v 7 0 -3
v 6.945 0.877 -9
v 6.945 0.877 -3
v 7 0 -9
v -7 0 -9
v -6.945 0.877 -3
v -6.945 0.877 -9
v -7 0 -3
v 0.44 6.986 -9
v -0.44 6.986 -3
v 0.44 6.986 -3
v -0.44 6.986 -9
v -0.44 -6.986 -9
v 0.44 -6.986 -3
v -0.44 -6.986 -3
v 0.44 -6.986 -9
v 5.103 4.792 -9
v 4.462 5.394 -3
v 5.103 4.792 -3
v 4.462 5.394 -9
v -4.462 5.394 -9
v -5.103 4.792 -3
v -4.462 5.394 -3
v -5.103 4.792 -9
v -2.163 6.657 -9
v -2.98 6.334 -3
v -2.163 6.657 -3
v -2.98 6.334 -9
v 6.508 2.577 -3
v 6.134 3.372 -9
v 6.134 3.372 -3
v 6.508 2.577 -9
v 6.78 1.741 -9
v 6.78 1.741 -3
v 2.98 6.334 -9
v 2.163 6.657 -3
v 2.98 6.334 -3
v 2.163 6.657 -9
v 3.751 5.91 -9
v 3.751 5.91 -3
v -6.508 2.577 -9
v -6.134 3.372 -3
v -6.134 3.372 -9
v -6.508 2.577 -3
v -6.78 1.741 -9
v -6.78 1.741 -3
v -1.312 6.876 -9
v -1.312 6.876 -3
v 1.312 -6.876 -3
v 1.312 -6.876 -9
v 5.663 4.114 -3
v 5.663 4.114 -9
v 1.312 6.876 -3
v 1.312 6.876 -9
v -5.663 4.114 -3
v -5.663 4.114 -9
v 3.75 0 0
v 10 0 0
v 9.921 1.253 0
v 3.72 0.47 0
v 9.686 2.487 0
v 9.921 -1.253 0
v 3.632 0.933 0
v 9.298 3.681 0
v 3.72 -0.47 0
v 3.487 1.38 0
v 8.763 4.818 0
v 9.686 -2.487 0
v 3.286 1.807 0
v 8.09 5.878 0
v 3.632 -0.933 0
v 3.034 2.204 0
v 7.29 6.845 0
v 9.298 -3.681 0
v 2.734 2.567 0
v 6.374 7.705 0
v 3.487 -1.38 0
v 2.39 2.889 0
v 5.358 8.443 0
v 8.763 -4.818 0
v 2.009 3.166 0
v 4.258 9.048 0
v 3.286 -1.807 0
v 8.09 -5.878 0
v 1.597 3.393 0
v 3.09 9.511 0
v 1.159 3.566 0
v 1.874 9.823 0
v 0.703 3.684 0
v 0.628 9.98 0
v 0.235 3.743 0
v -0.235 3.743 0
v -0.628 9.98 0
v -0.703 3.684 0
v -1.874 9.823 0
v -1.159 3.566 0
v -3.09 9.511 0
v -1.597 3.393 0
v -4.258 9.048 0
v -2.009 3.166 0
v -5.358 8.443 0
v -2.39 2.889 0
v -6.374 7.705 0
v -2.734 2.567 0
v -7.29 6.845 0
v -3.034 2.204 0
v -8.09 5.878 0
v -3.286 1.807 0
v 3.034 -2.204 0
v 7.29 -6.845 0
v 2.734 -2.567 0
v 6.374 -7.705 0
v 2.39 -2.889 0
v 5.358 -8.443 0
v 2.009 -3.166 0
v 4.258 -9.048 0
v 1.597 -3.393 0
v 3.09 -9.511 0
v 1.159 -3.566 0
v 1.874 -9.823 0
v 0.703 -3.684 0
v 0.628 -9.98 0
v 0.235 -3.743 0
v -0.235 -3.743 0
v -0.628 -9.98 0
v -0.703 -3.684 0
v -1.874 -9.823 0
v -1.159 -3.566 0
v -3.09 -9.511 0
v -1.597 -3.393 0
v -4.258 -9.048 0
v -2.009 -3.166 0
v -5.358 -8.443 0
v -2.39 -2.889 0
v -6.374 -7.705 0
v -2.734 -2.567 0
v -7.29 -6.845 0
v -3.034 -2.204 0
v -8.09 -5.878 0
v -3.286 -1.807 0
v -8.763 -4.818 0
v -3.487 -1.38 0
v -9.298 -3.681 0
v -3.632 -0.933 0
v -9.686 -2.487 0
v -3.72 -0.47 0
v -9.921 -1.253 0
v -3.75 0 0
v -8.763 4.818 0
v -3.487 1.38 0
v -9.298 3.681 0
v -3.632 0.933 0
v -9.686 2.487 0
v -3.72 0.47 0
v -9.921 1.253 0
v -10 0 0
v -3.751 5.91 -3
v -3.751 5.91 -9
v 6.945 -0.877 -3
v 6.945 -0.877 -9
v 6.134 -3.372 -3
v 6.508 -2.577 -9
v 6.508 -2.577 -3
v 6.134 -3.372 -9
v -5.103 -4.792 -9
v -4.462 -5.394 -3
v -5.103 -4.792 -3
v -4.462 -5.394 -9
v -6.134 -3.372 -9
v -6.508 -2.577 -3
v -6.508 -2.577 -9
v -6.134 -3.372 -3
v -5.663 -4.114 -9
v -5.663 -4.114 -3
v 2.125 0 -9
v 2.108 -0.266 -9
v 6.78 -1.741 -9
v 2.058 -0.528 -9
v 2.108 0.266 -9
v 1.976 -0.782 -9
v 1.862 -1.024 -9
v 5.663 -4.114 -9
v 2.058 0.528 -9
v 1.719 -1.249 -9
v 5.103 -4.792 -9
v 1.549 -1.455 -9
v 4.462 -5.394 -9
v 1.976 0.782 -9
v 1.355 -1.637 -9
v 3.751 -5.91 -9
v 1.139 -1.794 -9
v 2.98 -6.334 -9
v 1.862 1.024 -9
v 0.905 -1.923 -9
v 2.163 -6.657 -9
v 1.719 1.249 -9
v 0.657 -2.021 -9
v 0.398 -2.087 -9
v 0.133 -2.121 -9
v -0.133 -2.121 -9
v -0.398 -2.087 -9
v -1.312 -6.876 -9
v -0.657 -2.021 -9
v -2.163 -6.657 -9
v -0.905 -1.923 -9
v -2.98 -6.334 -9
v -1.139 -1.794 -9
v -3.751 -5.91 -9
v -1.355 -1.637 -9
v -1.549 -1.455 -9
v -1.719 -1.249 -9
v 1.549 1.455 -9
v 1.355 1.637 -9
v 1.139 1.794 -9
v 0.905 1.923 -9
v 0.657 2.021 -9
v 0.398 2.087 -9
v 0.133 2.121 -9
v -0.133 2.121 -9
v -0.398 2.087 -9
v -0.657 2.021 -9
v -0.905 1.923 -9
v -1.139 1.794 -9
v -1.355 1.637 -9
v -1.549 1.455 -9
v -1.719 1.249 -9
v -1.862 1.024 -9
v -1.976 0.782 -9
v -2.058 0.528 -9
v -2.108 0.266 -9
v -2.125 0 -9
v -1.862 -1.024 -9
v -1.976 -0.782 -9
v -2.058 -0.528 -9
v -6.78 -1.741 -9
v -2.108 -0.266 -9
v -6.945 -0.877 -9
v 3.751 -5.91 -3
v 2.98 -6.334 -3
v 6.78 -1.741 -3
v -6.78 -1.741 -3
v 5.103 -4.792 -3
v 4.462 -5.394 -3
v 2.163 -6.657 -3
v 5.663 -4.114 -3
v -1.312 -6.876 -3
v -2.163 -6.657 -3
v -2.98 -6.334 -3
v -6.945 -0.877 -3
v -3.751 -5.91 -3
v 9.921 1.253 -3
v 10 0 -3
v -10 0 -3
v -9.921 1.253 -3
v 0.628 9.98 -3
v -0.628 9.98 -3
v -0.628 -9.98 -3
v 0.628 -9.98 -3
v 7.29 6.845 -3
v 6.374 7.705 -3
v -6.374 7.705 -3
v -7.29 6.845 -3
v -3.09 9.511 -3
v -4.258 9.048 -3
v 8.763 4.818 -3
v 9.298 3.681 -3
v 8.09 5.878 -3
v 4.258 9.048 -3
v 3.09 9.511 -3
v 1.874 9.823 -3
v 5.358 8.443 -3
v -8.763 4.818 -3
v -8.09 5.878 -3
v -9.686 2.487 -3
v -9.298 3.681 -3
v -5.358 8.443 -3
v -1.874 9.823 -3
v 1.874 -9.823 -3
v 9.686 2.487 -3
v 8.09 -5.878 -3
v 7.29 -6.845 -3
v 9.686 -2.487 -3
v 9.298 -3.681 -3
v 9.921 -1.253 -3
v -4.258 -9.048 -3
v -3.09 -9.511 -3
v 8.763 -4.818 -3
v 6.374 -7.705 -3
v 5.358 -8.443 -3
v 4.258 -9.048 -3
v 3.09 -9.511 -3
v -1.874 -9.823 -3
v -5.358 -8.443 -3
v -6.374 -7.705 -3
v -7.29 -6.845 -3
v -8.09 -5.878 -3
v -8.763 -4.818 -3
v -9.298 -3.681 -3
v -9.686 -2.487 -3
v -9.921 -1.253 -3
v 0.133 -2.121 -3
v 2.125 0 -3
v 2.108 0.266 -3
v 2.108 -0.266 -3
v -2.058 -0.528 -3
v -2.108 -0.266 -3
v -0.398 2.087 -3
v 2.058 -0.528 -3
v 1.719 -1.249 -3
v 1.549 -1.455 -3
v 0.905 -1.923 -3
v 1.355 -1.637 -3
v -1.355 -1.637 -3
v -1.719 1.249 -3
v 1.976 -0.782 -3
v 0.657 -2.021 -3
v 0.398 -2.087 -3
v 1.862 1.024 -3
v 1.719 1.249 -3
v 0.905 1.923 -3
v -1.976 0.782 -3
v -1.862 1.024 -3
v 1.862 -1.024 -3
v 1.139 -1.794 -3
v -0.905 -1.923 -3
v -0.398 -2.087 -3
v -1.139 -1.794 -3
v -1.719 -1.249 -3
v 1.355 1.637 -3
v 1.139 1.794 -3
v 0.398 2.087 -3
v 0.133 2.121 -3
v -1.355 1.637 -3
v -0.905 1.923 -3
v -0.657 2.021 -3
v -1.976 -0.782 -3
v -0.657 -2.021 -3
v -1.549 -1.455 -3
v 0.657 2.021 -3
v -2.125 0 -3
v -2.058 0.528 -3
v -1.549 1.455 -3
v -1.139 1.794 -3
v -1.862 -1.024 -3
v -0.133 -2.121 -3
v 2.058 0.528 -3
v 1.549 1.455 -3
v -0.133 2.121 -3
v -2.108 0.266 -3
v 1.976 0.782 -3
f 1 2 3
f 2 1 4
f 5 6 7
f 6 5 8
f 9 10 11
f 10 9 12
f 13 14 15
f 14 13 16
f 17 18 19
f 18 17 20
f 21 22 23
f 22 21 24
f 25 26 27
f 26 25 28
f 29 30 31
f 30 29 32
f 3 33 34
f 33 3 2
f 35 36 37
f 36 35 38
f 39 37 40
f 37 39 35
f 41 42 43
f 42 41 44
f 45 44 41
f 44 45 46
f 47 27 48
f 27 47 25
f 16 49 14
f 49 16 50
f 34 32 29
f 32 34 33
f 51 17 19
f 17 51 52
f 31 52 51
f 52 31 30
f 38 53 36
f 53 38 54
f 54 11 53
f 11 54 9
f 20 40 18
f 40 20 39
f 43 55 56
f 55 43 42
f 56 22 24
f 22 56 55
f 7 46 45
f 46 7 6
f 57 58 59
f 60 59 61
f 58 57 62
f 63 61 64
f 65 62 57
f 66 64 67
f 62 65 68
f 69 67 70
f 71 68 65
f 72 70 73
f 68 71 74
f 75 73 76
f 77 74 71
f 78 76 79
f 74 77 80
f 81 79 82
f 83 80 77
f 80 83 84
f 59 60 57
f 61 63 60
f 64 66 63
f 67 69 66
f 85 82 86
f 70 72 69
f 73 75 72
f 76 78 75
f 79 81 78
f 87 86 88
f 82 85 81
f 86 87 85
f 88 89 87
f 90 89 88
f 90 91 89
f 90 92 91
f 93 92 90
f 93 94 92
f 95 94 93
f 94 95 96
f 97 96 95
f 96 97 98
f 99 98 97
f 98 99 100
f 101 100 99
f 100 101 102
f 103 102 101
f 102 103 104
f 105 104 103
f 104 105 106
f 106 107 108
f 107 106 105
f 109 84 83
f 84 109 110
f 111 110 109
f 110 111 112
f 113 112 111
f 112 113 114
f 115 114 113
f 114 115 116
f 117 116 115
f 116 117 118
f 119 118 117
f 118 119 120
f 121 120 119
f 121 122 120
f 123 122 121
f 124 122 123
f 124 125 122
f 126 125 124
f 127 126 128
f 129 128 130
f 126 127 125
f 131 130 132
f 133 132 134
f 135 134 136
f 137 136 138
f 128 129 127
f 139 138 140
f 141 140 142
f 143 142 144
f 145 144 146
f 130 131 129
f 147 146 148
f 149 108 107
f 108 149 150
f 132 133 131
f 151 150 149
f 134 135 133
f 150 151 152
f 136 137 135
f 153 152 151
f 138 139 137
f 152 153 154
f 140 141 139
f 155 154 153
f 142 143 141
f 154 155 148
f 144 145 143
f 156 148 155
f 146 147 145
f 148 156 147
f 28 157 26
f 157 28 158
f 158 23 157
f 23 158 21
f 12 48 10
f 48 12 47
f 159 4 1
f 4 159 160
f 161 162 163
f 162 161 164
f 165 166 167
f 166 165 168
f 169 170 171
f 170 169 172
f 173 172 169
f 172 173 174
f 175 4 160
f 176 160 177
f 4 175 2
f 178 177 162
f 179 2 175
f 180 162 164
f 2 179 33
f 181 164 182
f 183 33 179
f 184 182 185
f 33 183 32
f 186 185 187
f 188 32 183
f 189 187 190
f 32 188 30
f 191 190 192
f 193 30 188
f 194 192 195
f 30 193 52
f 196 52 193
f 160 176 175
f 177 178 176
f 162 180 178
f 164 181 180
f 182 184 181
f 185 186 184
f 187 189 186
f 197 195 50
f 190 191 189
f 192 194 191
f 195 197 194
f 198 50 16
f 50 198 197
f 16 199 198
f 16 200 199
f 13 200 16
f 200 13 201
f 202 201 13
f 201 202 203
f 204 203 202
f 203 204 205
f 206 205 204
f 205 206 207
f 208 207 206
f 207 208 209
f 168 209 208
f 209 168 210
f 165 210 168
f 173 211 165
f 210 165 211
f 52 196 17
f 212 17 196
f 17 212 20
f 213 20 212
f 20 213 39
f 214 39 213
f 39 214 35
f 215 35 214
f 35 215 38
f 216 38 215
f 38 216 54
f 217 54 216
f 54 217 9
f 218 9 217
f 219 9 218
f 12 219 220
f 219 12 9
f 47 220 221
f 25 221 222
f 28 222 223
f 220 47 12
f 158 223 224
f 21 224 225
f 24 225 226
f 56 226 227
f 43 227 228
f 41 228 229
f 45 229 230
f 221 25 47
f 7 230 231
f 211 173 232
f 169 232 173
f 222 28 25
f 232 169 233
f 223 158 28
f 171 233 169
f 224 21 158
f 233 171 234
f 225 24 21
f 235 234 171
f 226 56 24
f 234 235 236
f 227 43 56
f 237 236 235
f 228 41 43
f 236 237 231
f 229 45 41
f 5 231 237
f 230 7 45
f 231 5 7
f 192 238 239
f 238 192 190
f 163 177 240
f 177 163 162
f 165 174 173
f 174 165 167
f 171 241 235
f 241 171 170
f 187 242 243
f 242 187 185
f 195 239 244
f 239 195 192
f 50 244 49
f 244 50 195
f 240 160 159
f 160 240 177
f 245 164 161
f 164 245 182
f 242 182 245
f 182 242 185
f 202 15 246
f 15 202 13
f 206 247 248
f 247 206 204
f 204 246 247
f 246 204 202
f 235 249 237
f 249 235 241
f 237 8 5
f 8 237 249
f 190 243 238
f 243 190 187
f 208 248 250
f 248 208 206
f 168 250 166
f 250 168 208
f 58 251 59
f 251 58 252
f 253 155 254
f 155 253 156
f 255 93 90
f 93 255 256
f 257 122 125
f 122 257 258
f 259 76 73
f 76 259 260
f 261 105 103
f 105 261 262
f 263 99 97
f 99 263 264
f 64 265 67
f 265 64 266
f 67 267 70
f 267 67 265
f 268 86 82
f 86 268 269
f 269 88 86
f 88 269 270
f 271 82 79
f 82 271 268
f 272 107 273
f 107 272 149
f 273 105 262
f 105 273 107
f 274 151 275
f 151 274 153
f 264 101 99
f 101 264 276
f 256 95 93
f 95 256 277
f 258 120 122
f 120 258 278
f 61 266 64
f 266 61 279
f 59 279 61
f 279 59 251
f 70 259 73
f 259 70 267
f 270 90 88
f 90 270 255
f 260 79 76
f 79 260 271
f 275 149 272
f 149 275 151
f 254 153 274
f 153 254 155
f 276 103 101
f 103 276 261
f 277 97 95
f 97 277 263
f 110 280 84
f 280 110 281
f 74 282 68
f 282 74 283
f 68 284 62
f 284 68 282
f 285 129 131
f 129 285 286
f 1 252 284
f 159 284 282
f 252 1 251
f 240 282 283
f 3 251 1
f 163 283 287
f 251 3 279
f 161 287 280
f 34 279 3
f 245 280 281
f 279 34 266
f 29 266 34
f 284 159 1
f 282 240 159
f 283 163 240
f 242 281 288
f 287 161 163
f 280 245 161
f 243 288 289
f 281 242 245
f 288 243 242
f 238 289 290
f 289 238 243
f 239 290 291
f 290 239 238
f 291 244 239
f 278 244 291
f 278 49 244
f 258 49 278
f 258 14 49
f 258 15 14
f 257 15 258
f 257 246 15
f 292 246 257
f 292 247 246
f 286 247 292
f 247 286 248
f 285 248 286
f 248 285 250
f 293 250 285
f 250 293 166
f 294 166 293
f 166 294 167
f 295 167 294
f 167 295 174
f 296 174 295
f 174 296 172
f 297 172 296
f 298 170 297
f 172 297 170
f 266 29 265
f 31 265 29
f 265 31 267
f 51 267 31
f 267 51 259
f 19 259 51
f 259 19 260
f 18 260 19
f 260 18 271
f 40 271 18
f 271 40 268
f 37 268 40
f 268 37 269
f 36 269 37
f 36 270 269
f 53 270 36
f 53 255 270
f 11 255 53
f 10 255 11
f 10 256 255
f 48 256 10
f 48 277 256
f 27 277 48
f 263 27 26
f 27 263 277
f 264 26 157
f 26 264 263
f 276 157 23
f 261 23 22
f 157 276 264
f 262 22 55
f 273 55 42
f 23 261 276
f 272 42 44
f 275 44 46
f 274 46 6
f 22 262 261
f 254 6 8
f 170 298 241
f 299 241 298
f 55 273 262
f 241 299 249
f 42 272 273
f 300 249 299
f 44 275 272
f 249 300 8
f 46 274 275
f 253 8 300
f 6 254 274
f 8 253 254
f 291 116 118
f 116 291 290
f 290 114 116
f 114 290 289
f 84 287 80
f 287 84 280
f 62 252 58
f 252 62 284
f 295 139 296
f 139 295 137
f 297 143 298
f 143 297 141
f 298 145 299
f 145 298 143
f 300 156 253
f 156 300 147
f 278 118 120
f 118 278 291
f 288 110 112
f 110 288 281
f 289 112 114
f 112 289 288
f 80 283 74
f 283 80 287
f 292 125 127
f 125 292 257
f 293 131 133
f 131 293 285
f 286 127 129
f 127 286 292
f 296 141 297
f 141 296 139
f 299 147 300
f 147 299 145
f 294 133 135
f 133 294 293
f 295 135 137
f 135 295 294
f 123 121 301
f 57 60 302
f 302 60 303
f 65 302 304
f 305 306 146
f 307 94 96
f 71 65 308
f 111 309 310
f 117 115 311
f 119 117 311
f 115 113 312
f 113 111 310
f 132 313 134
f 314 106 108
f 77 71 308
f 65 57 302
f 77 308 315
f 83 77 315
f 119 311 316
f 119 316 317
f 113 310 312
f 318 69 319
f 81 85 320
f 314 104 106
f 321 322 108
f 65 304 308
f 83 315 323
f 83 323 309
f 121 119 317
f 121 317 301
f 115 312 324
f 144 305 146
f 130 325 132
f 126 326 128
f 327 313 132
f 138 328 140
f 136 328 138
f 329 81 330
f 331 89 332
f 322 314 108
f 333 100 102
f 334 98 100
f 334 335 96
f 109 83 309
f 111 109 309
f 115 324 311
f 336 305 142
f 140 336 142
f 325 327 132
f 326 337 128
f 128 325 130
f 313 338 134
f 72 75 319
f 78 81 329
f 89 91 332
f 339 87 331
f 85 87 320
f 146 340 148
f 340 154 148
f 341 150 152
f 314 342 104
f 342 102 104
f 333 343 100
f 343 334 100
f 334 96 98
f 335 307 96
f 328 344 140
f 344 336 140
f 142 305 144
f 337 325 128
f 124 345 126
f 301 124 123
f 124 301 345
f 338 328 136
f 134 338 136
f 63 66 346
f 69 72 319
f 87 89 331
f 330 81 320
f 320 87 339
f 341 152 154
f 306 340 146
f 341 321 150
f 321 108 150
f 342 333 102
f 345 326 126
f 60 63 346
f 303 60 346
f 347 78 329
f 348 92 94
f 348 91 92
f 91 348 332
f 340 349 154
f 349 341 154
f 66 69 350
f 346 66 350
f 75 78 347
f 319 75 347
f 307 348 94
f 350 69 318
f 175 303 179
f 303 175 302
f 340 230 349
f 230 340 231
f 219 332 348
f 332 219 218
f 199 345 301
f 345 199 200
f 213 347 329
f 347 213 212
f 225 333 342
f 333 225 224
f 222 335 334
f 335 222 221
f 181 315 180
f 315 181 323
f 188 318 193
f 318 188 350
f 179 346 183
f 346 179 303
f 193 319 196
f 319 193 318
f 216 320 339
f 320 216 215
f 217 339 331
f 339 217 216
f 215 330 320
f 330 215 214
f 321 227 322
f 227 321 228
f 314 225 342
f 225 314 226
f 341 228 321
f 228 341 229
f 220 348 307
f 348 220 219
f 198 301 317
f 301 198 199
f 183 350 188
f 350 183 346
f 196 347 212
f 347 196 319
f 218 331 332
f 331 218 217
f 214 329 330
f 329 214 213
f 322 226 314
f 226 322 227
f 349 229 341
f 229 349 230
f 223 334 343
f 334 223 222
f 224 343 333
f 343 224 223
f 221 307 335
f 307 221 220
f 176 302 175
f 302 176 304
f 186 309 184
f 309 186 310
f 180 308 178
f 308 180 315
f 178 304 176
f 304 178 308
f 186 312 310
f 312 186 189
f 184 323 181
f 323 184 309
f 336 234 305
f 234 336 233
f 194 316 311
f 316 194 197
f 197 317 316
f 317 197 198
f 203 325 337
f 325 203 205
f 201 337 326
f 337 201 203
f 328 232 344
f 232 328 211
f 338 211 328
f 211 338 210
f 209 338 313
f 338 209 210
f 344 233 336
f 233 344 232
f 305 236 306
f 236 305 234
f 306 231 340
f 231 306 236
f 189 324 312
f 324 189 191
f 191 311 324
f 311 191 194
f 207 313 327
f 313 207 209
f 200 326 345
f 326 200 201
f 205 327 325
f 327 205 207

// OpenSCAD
$fn = 50;


difference() {
	union() {
		translate(v = [0, 0, -9.0000000000]) {
			cylinder(h = 9, r = 7.0000000000);
		}
		translate(v = [0, 0, -3.0000000000]) {
			cylinder(h = 3, r = 10.0000000000);
		}
	}
	union() {
		translate(v = [0, 0, 0]) {
			rotate(a = [0, 0, 0]) {
				difference() {
					union() {
						#translate(v = [0, 0, -9.0000000000]) {
							cylinder(h = 9, r = 2.0000000000);
						}
						#translate(v = [0, 0, -3]) {
							cylinder(h = 3, r1 = 2.1250000000, r2 = 3.7500000000);
						}
						#translate(v = [0, 0, -9.0000000000]) {
							cylinder(h = 9, r = 2.1250000000);
						}
						#translate(v = [0, 0, -9.0000000000]) {
							cylinder(h = 9, r = 2.0000000000);
						}
					}
					union();
				}
			}
		}
	}
}
